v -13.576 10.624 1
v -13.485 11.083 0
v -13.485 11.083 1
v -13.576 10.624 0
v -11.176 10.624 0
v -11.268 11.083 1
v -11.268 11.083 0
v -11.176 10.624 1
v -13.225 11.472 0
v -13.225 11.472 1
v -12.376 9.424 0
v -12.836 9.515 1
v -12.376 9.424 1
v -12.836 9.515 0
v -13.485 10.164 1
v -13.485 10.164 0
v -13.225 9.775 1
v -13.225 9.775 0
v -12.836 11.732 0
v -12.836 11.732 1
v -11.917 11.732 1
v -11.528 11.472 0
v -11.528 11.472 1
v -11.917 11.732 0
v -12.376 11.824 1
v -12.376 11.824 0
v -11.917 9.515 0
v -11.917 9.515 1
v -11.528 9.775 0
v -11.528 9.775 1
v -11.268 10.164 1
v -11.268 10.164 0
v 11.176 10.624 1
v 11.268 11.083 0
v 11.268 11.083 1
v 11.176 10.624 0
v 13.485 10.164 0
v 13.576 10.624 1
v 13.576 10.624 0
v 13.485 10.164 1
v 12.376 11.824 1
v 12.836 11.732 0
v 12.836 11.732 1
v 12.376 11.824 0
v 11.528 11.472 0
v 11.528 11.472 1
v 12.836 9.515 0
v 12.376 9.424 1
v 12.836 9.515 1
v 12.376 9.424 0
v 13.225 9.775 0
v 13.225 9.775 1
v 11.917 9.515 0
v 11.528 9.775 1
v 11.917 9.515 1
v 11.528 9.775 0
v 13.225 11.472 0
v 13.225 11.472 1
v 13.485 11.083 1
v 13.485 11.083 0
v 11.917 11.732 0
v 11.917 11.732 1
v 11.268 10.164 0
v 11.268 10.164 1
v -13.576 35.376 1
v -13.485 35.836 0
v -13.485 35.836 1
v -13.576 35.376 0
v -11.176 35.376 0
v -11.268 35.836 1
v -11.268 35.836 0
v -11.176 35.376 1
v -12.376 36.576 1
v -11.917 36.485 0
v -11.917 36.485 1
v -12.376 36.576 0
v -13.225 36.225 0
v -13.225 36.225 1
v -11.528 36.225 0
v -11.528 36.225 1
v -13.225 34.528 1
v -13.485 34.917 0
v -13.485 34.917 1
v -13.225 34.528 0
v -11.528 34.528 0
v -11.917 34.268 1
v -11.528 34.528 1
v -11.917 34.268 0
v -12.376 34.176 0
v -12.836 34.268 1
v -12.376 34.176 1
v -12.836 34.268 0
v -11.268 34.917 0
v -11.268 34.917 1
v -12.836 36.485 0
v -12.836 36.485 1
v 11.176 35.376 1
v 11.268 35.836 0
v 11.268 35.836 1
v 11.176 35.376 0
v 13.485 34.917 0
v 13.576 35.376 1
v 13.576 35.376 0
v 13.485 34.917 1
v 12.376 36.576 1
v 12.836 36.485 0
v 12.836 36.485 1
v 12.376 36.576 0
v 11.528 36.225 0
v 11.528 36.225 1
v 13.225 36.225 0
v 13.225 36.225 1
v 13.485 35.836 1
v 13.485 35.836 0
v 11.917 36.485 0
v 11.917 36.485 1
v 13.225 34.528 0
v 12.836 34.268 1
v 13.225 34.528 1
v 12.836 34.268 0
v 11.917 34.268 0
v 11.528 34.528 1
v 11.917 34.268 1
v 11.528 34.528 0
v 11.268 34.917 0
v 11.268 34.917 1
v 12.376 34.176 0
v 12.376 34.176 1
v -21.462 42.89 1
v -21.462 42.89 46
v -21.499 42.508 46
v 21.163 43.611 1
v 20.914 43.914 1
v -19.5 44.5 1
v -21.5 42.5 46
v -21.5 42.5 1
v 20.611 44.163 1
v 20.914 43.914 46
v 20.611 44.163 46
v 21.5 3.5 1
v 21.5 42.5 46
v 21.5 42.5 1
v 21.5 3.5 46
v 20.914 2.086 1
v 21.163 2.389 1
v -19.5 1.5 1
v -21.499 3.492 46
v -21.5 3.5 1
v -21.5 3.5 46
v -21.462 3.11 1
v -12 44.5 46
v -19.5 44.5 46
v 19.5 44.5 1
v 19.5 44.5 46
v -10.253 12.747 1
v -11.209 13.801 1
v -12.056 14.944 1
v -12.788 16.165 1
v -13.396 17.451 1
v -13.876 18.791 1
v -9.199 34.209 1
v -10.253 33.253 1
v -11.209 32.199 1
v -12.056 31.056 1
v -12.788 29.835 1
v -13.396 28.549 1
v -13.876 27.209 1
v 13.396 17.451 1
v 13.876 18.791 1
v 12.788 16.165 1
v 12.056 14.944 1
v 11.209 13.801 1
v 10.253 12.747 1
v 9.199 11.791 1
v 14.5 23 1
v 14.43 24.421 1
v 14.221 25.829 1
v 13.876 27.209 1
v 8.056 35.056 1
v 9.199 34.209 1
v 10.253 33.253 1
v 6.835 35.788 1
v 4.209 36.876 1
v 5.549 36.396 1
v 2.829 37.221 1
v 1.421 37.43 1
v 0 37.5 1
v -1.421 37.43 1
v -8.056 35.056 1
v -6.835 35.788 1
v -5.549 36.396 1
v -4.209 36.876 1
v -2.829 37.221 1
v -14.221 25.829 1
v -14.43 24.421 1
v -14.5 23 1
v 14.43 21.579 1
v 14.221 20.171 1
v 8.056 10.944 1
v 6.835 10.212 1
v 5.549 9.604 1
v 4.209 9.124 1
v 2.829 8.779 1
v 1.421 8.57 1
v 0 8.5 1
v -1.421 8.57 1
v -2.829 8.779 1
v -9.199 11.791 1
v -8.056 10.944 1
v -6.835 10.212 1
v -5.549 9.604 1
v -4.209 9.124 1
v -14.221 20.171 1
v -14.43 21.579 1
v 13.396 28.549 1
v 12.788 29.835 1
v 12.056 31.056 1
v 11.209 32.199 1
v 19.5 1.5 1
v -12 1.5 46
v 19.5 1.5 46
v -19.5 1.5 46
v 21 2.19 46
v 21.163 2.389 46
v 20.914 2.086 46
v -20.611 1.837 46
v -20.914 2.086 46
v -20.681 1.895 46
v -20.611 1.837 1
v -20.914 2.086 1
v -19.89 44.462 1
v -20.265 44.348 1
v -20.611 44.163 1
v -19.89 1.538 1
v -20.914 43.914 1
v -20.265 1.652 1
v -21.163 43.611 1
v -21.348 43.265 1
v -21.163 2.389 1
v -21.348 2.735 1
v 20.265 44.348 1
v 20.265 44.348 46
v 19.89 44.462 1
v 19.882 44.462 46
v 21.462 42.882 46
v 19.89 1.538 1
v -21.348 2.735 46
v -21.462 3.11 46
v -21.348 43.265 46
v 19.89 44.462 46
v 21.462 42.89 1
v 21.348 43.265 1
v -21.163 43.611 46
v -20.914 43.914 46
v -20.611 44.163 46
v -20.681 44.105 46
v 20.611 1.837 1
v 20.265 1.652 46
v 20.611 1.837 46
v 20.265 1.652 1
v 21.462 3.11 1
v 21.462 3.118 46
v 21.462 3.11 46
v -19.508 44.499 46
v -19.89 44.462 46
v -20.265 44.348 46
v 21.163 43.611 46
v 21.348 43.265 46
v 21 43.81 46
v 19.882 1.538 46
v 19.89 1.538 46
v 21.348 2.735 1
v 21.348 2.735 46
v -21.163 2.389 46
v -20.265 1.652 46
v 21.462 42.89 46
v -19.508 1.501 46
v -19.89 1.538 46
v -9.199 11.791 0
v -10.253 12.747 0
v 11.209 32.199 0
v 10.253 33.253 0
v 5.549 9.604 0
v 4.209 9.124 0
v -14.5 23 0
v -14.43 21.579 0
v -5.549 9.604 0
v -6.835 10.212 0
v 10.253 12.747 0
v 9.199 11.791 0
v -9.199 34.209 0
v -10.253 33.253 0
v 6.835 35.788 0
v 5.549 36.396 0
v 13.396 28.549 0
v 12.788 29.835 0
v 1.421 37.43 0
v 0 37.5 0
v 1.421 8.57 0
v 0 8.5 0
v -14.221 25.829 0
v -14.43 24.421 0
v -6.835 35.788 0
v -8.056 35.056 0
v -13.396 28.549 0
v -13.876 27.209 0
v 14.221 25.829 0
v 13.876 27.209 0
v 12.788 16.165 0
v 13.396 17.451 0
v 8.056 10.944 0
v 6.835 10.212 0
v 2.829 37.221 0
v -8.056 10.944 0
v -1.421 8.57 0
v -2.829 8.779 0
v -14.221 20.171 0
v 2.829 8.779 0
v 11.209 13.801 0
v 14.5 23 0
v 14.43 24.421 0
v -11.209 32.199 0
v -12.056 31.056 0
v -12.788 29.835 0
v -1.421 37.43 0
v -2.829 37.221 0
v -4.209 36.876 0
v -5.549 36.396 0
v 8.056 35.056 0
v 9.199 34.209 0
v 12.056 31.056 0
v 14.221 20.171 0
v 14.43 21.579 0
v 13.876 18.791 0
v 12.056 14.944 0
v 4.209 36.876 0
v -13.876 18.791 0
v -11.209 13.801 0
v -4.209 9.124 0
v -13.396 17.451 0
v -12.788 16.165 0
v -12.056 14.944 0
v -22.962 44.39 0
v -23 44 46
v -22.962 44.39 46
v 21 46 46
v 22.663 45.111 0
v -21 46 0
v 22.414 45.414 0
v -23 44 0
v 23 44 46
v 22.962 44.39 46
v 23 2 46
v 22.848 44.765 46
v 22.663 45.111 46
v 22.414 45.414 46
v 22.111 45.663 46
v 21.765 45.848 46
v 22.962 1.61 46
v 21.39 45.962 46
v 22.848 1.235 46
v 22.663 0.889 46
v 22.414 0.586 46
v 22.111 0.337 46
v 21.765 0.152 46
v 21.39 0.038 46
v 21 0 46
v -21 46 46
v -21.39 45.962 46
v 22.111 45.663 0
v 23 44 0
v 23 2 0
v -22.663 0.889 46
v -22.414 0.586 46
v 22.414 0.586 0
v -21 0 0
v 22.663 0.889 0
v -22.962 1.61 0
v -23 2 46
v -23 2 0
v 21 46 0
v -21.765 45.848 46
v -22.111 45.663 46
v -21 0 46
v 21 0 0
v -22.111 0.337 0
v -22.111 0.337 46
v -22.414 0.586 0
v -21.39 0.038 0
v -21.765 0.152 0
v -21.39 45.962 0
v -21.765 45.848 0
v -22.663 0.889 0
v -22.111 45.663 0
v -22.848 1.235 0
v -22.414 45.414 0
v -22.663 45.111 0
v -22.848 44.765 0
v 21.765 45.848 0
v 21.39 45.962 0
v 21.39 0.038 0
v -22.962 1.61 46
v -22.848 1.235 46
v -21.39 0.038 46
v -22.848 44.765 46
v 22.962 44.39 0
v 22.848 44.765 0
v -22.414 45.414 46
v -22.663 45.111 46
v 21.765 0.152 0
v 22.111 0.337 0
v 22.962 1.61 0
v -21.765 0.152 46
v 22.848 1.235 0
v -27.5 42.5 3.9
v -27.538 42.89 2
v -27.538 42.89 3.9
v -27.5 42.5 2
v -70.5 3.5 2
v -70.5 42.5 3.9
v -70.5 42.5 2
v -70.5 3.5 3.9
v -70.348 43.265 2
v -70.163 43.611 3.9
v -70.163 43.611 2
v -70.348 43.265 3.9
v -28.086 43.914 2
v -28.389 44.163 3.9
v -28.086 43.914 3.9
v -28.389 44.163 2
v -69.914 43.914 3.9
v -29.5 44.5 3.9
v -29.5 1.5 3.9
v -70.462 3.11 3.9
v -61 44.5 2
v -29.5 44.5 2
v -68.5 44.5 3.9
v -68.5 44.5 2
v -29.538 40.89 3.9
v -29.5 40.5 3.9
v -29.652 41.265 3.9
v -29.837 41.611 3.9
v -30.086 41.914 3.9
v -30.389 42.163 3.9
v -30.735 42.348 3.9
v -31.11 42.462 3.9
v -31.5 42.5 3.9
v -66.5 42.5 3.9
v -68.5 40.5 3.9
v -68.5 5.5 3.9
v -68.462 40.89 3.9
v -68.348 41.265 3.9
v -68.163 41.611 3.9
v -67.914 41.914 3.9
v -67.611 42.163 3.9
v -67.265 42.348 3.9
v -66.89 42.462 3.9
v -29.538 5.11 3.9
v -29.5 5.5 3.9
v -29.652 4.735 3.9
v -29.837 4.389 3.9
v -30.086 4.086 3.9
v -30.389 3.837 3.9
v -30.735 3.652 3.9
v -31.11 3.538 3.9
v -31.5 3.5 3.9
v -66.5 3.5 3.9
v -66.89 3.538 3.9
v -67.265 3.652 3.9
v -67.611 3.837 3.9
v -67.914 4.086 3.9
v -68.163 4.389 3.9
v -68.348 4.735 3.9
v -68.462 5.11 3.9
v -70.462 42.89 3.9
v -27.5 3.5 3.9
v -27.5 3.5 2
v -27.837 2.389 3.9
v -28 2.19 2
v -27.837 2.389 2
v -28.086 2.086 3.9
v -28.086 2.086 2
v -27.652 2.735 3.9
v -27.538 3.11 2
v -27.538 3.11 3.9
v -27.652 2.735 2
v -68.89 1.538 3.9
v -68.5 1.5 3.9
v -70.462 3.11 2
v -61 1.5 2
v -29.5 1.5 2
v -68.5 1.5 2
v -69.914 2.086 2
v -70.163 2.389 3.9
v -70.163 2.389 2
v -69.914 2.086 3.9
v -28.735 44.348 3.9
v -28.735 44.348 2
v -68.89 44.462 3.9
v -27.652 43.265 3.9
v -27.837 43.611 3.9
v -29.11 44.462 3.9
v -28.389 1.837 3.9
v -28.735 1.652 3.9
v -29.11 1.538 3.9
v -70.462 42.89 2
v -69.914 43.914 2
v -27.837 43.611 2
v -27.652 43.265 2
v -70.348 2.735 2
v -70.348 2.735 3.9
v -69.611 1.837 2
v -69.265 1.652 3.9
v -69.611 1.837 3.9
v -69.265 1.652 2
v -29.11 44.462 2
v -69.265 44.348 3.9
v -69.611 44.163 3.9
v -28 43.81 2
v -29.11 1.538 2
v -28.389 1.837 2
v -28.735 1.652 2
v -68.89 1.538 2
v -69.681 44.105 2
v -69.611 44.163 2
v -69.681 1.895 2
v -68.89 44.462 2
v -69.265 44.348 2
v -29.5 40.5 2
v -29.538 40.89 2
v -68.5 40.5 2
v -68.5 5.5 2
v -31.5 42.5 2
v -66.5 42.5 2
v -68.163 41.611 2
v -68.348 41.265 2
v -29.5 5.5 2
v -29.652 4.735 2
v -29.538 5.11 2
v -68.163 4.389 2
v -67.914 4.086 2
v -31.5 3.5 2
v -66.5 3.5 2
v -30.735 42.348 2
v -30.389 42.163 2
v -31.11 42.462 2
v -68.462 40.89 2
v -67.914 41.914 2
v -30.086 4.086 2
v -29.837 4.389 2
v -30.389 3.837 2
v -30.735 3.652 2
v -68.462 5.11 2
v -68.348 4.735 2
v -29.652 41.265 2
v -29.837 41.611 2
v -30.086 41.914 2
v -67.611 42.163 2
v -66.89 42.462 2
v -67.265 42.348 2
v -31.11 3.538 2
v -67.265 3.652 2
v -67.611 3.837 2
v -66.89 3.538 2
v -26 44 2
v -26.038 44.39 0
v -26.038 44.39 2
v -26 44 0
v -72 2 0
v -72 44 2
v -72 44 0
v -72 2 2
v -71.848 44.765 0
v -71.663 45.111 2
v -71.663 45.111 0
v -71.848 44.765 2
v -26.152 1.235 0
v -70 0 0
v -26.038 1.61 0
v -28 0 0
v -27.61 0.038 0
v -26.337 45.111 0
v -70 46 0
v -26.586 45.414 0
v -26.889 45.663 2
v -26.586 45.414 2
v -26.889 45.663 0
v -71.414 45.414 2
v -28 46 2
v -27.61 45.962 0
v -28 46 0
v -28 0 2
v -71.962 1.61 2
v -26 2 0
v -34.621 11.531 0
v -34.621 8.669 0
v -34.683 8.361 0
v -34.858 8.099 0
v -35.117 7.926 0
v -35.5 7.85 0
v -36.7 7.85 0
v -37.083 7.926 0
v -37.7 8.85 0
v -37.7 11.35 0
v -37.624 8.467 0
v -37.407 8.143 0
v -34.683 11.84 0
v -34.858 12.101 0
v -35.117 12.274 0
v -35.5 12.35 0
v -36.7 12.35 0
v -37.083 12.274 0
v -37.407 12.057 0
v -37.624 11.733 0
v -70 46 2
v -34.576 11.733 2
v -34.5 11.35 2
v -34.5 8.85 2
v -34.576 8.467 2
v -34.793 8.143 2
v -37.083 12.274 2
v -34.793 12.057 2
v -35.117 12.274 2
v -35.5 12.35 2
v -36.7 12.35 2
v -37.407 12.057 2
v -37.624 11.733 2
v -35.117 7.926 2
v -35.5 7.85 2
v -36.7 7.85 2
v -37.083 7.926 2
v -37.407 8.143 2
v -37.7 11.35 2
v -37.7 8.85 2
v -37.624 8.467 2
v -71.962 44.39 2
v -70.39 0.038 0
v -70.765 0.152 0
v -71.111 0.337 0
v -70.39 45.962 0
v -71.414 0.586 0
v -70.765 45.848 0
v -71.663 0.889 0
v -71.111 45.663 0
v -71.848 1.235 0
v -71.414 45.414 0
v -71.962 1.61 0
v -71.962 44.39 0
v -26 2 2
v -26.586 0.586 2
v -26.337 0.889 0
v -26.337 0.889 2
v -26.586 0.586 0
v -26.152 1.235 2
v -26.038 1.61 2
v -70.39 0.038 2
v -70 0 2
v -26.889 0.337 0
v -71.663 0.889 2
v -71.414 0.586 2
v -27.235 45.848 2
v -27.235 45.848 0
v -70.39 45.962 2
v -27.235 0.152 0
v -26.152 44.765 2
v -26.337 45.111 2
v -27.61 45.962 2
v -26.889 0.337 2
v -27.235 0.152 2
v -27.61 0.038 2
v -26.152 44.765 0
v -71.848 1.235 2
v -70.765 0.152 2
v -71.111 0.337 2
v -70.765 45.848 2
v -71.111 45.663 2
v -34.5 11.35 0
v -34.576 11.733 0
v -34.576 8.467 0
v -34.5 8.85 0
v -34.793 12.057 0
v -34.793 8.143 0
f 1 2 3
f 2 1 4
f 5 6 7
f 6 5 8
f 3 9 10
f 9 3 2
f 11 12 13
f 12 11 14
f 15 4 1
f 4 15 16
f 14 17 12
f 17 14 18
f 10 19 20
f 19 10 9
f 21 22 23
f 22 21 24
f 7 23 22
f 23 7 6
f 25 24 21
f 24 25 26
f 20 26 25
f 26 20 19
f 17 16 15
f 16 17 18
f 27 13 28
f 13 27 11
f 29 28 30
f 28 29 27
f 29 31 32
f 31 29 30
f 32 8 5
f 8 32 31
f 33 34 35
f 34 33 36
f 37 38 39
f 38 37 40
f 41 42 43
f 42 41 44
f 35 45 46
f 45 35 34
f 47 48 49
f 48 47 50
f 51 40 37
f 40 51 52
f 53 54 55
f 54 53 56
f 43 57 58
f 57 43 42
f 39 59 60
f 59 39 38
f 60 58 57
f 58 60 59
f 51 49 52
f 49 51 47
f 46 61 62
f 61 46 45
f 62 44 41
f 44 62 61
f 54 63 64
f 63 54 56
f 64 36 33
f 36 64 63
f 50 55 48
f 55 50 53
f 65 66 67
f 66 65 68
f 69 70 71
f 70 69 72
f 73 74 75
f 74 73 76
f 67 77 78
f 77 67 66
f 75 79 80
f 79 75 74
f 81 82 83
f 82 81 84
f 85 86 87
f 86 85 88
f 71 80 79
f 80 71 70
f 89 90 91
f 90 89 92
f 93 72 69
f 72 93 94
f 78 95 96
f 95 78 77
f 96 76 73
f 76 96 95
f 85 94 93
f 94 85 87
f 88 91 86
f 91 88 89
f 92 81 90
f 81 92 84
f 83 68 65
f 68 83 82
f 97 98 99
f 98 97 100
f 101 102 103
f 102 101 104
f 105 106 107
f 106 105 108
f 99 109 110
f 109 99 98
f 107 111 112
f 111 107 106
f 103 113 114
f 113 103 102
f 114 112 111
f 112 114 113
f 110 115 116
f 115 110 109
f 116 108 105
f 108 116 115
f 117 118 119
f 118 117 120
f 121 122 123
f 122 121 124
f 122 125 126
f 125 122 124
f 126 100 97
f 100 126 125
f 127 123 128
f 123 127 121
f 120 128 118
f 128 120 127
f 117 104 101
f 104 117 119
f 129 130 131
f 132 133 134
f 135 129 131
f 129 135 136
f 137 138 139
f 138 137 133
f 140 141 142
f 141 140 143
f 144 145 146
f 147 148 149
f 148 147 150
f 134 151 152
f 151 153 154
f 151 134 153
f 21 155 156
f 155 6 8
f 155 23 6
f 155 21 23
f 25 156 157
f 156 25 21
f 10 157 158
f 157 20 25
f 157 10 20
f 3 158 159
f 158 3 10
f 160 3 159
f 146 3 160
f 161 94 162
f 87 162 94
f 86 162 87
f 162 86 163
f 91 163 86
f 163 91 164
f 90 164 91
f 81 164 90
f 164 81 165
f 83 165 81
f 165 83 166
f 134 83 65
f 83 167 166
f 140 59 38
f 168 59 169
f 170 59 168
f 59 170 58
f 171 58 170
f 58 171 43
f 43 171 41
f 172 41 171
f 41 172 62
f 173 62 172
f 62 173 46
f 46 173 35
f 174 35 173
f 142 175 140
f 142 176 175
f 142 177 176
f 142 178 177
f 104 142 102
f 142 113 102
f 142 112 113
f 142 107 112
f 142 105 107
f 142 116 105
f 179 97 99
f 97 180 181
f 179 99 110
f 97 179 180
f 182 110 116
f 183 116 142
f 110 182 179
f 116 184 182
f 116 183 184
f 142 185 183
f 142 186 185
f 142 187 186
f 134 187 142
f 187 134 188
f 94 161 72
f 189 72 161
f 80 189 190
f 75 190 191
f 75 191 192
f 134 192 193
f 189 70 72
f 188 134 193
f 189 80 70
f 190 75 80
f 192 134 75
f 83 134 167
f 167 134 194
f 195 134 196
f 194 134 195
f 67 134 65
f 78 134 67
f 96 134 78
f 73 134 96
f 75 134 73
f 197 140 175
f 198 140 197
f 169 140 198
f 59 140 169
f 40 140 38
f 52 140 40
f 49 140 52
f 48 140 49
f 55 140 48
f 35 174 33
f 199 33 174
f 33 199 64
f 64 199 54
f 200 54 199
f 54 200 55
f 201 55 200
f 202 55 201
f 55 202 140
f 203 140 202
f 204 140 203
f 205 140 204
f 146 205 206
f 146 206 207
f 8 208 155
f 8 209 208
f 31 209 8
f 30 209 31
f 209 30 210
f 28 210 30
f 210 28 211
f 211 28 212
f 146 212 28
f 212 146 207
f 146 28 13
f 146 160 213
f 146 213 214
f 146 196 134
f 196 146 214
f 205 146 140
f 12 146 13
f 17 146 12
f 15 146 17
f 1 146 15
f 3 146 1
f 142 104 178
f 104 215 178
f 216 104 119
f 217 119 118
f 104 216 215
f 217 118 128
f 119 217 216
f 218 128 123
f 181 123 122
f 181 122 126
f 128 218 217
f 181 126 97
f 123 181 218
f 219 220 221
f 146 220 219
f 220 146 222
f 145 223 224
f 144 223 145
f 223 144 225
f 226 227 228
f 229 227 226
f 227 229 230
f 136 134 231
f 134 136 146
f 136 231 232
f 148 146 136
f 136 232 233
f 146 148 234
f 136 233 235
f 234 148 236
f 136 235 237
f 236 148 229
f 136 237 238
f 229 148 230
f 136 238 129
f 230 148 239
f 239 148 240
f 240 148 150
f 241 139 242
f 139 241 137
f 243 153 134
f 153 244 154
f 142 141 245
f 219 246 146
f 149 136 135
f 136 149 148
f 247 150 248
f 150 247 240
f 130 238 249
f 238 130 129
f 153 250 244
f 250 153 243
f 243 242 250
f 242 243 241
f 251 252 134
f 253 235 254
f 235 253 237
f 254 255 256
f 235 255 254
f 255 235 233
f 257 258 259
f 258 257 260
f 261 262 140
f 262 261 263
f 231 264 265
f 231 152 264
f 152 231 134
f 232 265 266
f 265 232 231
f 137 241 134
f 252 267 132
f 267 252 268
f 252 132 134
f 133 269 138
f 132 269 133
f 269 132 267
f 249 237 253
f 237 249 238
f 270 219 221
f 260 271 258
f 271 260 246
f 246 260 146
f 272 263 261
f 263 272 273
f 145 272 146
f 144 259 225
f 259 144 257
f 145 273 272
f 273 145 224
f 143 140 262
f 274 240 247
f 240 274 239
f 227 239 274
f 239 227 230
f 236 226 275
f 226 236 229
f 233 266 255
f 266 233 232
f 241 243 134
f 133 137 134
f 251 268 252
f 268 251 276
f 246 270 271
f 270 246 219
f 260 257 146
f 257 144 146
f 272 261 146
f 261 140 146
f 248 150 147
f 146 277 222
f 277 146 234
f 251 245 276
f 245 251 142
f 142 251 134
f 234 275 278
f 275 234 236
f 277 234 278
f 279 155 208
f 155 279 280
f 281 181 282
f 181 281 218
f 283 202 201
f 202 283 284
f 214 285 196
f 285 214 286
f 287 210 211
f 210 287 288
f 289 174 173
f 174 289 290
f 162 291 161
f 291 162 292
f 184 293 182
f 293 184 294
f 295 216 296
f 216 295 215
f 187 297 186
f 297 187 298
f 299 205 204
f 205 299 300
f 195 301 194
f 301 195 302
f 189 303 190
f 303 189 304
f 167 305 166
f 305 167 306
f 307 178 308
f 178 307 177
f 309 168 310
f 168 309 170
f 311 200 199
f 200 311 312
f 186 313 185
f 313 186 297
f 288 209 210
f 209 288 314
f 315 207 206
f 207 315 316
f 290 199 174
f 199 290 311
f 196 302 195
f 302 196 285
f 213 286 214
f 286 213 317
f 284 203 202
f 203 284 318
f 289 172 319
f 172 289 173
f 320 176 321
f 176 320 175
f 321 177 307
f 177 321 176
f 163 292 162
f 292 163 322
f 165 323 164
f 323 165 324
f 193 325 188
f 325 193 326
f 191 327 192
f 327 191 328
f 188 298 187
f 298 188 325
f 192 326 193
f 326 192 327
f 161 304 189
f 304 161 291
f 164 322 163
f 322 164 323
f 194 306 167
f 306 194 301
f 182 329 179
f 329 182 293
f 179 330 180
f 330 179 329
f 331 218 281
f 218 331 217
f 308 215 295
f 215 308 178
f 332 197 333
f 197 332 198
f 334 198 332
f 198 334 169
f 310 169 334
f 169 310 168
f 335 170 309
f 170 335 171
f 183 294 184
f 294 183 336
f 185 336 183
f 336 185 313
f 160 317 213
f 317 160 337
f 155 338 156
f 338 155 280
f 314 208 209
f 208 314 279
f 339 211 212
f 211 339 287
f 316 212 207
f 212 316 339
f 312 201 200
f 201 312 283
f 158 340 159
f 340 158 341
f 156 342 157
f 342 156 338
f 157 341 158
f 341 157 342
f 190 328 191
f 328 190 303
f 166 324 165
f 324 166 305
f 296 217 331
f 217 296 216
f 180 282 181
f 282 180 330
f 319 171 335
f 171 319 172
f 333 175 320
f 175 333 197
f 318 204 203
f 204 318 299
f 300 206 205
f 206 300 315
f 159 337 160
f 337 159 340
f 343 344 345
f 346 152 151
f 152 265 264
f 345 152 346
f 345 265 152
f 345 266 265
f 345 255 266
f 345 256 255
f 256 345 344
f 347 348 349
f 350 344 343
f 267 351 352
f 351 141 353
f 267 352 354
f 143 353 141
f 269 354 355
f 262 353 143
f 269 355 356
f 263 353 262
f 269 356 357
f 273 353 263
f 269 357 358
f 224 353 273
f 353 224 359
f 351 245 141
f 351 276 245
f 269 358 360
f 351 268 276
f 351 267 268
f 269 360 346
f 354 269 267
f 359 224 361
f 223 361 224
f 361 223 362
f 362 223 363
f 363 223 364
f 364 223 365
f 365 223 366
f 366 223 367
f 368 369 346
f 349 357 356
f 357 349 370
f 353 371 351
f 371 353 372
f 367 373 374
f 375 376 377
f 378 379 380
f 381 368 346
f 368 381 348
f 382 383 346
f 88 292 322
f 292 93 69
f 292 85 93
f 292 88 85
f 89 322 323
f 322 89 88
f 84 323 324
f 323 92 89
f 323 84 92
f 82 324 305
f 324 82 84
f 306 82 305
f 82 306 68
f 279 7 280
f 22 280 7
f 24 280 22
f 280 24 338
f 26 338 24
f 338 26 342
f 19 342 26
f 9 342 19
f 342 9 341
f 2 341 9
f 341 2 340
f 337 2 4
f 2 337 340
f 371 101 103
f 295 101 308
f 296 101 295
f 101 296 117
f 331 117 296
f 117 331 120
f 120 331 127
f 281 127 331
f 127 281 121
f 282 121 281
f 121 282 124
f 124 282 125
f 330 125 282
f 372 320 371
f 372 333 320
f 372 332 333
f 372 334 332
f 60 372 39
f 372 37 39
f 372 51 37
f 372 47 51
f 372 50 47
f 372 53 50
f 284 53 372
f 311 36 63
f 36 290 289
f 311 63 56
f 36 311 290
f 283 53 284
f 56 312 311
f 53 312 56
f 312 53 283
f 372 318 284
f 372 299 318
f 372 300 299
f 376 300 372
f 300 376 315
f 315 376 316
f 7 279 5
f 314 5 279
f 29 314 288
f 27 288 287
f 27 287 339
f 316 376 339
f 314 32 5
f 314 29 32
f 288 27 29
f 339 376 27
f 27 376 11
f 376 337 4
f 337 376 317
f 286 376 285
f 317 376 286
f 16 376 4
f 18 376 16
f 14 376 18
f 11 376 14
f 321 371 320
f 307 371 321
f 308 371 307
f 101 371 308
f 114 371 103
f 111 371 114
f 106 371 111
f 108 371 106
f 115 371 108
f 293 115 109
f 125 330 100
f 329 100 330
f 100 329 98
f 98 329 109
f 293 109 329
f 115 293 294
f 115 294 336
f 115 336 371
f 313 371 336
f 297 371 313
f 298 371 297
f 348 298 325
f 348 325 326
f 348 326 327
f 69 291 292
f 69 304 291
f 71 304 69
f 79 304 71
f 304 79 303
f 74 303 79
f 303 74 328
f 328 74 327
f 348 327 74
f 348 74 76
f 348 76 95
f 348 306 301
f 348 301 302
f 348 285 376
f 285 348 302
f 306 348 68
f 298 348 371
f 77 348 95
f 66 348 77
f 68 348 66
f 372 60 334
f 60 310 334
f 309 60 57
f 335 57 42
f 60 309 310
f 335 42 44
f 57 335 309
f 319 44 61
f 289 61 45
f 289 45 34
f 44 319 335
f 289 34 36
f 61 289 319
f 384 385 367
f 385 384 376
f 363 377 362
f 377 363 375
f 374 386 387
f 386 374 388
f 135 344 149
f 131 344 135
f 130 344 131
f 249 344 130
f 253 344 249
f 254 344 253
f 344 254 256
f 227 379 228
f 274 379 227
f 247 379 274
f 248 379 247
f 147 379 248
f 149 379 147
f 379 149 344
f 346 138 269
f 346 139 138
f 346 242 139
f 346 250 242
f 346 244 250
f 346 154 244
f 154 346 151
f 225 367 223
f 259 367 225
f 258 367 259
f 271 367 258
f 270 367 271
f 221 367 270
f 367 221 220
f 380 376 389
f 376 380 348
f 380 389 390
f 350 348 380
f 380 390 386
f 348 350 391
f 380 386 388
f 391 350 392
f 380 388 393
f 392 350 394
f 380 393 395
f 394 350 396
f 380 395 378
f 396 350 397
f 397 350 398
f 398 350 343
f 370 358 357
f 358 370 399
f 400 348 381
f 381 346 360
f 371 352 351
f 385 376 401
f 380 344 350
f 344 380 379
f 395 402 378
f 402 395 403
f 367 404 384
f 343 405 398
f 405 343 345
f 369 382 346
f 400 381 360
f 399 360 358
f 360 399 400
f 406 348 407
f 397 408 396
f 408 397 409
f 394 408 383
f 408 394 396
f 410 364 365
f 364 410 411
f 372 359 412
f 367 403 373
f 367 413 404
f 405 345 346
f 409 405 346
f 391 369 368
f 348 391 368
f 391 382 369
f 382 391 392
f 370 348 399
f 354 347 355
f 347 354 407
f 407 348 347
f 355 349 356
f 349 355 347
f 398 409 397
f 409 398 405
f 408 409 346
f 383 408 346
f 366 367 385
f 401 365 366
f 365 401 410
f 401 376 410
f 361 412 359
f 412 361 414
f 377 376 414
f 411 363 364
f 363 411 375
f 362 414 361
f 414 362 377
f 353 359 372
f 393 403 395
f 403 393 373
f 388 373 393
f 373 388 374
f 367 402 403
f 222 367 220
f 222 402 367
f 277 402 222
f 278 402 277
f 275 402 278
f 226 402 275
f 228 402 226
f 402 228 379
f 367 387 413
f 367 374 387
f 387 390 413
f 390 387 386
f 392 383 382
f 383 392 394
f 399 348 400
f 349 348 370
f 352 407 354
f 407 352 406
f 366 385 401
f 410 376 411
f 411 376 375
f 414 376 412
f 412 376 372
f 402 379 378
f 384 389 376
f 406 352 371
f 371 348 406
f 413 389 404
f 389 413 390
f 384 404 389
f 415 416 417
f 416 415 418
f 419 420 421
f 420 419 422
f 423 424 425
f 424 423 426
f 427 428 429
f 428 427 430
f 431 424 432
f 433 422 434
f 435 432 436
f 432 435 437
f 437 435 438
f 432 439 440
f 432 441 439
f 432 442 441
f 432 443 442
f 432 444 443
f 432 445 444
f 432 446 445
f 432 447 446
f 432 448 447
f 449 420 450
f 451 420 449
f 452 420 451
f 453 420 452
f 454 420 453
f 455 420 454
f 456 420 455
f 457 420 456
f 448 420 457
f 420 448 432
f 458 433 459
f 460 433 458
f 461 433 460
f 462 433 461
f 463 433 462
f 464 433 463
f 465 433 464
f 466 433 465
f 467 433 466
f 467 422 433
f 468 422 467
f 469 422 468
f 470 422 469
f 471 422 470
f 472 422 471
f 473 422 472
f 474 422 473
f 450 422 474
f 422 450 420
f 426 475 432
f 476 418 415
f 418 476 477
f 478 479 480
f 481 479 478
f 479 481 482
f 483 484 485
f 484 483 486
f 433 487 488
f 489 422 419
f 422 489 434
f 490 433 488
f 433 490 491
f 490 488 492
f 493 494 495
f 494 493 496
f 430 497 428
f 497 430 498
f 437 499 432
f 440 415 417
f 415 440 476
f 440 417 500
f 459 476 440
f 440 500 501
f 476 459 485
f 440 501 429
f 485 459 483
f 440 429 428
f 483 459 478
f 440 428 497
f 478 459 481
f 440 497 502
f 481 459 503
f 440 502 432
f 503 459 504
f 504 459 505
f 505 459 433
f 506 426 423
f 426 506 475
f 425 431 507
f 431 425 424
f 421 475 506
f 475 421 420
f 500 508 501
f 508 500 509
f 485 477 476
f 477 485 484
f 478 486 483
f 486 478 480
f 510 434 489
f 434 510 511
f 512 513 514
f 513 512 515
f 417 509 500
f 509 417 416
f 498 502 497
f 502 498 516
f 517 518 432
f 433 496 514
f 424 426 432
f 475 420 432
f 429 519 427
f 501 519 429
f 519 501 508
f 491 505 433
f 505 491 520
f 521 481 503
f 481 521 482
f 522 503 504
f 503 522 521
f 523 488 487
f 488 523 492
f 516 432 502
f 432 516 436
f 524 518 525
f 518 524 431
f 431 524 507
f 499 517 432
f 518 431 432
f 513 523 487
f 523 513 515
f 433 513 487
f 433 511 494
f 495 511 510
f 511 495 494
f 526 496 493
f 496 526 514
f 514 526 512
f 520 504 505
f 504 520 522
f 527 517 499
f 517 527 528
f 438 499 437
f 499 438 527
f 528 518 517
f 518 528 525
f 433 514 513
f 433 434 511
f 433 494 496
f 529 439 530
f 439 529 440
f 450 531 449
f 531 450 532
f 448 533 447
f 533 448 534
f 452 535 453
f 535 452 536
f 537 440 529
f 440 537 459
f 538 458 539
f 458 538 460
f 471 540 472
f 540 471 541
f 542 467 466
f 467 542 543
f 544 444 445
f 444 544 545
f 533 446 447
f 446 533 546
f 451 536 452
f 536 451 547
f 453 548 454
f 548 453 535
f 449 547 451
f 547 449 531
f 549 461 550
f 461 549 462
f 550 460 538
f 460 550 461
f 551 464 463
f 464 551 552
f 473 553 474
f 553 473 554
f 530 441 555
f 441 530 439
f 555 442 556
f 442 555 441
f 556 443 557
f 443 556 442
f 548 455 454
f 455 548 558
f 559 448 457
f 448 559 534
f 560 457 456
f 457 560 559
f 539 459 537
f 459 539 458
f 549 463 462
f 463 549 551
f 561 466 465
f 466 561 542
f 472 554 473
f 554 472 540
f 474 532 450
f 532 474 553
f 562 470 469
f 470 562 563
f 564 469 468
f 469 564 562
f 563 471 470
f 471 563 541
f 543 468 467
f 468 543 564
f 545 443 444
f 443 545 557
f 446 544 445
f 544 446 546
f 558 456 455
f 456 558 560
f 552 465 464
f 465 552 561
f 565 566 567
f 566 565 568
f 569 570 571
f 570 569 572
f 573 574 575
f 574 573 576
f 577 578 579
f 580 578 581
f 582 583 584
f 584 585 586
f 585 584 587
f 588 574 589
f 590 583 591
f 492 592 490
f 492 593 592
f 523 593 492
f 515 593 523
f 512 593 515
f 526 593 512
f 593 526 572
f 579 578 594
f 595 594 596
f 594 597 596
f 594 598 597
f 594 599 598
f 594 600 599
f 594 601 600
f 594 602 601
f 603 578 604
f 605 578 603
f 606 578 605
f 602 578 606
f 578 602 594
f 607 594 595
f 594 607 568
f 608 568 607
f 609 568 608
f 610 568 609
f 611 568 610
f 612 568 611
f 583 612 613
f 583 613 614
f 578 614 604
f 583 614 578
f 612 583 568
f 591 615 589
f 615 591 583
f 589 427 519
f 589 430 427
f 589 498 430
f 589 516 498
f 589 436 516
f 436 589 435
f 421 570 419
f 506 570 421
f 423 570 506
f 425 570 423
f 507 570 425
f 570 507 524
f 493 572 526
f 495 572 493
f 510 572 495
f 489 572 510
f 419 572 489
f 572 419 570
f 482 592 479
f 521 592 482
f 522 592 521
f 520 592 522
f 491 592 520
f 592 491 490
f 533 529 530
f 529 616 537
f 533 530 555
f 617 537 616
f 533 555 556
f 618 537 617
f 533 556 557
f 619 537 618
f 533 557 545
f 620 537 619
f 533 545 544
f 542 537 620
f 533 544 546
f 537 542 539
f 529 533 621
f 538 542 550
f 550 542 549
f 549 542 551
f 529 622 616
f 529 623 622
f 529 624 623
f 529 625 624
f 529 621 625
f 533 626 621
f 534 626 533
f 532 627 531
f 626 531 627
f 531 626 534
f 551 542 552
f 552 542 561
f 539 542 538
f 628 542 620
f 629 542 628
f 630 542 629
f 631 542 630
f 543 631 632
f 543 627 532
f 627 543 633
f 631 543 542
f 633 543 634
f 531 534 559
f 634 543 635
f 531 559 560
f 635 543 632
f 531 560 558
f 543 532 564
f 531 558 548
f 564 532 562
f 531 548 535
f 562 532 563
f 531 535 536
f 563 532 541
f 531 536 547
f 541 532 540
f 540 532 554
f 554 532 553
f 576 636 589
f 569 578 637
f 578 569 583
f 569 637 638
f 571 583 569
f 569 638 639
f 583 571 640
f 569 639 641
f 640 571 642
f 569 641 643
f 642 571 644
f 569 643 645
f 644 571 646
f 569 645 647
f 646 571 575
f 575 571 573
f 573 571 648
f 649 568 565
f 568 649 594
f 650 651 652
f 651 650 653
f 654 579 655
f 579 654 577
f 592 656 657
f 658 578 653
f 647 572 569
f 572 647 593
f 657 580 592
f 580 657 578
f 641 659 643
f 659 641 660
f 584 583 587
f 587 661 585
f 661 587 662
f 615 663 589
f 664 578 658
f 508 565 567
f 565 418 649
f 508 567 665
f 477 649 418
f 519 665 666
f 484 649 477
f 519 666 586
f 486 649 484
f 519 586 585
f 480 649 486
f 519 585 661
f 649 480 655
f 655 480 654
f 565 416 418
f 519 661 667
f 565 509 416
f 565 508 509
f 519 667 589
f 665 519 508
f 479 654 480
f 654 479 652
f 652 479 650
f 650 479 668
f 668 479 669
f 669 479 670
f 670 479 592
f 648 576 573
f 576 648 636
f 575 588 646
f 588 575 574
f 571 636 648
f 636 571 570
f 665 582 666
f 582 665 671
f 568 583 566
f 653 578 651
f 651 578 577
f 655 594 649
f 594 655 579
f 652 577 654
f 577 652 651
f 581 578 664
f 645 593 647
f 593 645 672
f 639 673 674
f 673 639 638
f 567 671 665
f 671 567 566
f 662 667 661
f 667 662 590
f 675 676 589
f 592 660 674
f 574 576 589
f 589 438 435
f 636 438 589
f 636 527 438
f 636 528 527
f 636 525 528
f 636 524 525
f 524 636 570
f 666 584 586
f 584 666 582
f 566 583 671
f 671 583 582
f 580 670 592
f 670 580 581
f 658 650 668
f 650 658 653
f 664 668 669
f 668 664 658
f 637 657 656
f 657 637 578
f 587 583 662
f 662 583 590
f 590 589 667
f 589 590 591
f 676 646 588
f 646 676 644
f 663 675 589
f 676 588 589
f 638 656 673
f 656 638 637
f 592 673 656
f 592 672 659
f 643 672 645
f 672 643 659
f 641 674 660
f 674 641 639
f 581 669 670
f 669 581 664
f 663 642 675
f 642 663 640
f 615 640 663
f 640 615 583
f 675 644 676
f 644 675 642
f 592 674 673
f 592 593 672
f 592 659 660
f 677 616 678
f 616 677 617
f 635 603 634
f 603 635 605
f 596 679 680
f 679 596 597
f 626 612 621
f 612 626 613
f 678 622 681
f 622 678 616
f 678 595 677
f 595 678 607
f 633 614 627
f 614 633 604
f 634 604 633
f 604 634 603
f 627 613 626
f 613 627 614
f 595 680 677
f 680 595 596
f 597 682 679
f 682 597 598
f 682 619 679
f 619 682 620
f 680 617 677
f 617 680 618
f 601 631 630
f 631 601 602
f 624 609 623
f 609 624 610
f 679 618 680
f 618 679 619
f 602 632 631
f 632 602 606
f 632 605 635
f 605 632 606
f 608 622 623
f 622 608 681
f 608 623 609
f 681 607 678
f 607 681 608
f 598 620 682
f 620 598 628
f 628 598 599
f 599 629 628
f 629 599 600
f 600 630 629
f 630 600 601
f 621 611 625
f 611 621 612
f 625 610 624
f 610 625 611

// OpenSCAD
// file: speaker_stand.scad
//
// Speaker Stand
//
// by Yasuhiro Wabiko
//
// This work is licensed under a Creative Commons Attribution 4.0 International License.
// https://creativecommons.org/licenses/by/4.0/
//
use <prim.scad>

default_stand_z =40;
default_base_x = 36;
default_base_y = 36;
default_base_z = 4;
default_base_r = 2;
default_pole_r = 4; // pole body radius
default_pole_z = 36;
default_pole_rr = 1; // pole corner radius
default_joint_z = 2;
default_joint_extra_z = 0;
default_joint_r = 3;


WELDING = 0.1;

// render target; this is meant to be overriden by Makefile
TARGET="default";

//
// top level logic
//
speaker_stand_main();

module speaker_stand_main(target=TARGET){
    
    if (target == "default") {
        speaker_stand(stand_z=40, base_x=30, base_y=30, pole_r=8);
    }

    if (target == "ce32a") {
        speaker_stand(stand_z=40, base_x=(36-2)*0.8, base_y=(36-2)*0.8, pole_r=4);
    }

    if (target == "ce32a_type2") {
        speaker_stand(stand_z=40, base_x=(33.2-2)*0.8, base_y=(33.2-2)*0.8, pole_r=4);
    }

    if (target == "b1s") {
        speaker_stand(stand_z=40, base_x=(40-2)*0.8, base_y=(40-2)*0.8, pole_r=4);
    }

    if (target == "ce32a_tallboy") {
        speaker_stand(stand_z=40, base_z=0, pole_r=18, base_x=32*0.8, base_y=32*0.8);
    }

    if (target == "b1s_tallboy") {
        speaker_stand(stand_z=40, base_x=(40-2)*0.8, base_y=(40-2)*0.8, pole_r=4);
    }

}

// [Public]
// A speaker stand.
//
// stand_z = total height (= base height + pole height) i.e how high the speaker is put from the ground.
// (base_x, base_y, base_z, base_r) = stand base dimension
// (joint_z, joint_r) = joint configuration
// pole_r = pole radius
//
// NOTE: pole height is generated by total height - base_height.
module speaker_stand(stand_z = default_stand_z,
                     base_x = default_base_x,
                     base_y = default_base_y,
                     base_z = default_base_z,
                     base_r = default_base_r,
                     joint_r = default_joint_r,
                     joint_z = default_joint_z,
                     pole_r = default_pole_r,
                     pole_rr = default_pole_rr) {

    pole_z = stand_z-base_z;

    speaker_stand_unit(stand_z = stand_z,
                       base_x = base_x,
                       base_y = base_y,
                       base_z = base_z,
                       base_r = base_r,
                       joint_r = joint_r,
                       joint_z = joint_z,
                       pole_r = pole_r,
                       pole_z = pole_z,
                       pole_rr = default_pole_rr );
}

// (for testing) when you want to override design parameters in detail
module speaker_stand_unit(stand_z = default_stand_z,
                          base_x = default_base_x,
                          base_y = default_base_y,
                          base_z = default_base_z,
                          base_r = default_base_r,
                          joint_r = default_joint_r,
                          joint_z = default_joint_z,
                          joint_extra_z  = default_joint_extra_z,
                          pole_r = default_pole_r,
                          pole_z = default_pole_z,
                          pole_rr = default_pole_rr,
                          joint_fn = 32,
                          pole_fn = 64,
                          base_fn = 64,
                          clip_z = 0.6) {
    clip_r = joint_r;
    
    translate([0, 0, 0]) {
        // base plate
        translate([0, 0, base_z/2]) {
            prim_round_zplate0(base_x, base_y, base_z, base_r, base_fn);
        }

        translate([0, 0, pole_z/2]) {
            difference() {
                union() {
                    // pole (inner joint)
                    translate([0, 0, pole_z/2+joint_z/2-WELDING+clip_z/2]) {
                        cylinder(r = joint_r, $fn = joint_fn, h = joint_z+WELDING+clip_z, center=true);
                    }

                    // clip
                    translate([0, 0, pole_z/2+joint_z+clip_z/2]) {
                        minkowski() {
                            cylinder(r = clip_r, $fn = joint_fn, h = 0.2, center=true);
                            sphere(r=0.2, $fn=32);
                        }
                    }
                }
                union() {
                    // slits for easier joint 
                    translate([0, 0, pole_z/2]) {
                        for (i=[0:1:7]) {
                            rotate([0,0,45*i]) {
                                cube([8, 0.4, joint_z*6], center=true);
                            }
                        }
                    }

                    // pole (empty inside)
                    translate([0, 0, pole_z/2+joint_z/2-WELDING+clip_z/2]) {
                        //    cylinder(r = joint_r-0.5, $fn = joint_fn, h = joint_z+WELDING*4+clip_z, center=true);
                    }
                }
            } // difference

            // pole (outer)
            translate([0, 0, base_z/2-WELDING]) {
                //cylinder(r = pole_r, $fn = pole_fn, h = pole_z-base_z+WELDING, center=true);
                prim_round_zplate0(pole_r*2, pole_r*2, pole_z-base_z+WELDING, pole_rr, 32);
            }

            // pole (joint's inner stuffing for more strength)
            translate([0, 0, pole_z/2+joint_z/2-WELDING+clip_z/2]) {
                cylinder(r = clip_r-1, $fn = joint_fn, h = joint_z+WELDING+clip_z, center=true);
            }
        }
    }
}
// main file
//
// TangBand W1-1070SH 1" Speaker Enclosure Rev.1
//
// by Yasuhiro Wabiko
//
// This work is licensed under a Creative Commons Attribution 4.0 International License.
// https://creativecommons.org/licenses/by/4.0/
//
use <speaker_stand.scad>
use <prim.scad>

// printer error related tweaks
LID_ERROR   = 0.0; // if the lid does not fit, make this larger.
                   // Wood PLA: 0.8 (0.1-0.4 too small). 0.8 a bit too loose.
                   // PLA: 0.0 (0.8 too large.)

SHELL_ERROR = 0.0; // if the speaker driver does not fit, make this larger.

// shape parameters
wall_t = 1.0;  // wall thickness
spfn =  8;   // minkowski resolution

// inner size of the box
size_x = 40;
size_dx = 0; // extra front wall thickness inside size_x
size_y = 43;
size_z = 43;
shell_r = 2;

// outer size of the box
shell_x = 46;
shell_y = 46;
shell_z = 46;
shell_r = 2;
    

lid_inner_x = 2.0; // thickness of lid inner part
lid_wall_t = 2.0;
lid_arm_r = 2.0;
lid_hole_y = 3.0;
lid_hole_z = 2.0;

// further customization example: make a hole on the front surface
// coordinates are from left-bottom edge of inner space

// speaker center hole
speaker_dia = 29; // speaker diameter
front_hole_r0 = speaker_dia/2;
front_spfn   = 64;  // minkowski resolution

// spaker mount holes at corners
MOUNT_DIA    = 35;  // mount holes layout diameter
front_hole_r = 1.2; // mount hole radius
mount_spfn   = 16;  // minkowski resolution

// a hole on the lid side
lid_hole_y = 3;
lid_hole_z = 3;
lid_hole_r = 2;

//
// internals
//
WELDING = 0.1;

// render target; this is meant to be overriden by Makefile
TARGET="default";

//
// top level logic
//
tb1070sh_main();

module tb1070sh_main(target=TARGET){
    
    if (target == "default") {
        tb1070sh(with_stand=0, with_print=1);
    }

    if (target == "with_stand") {
        tb1070sh(with_stand=1, with_print=1);
    }

    if (target == "stand_only") {
        oy=36;
        translate([-oy-3, -oy/2+3, 0]) {
            tb1070sh_unit_stand();
        }
    }

    if (target == "unit_test") {
        translate([40,0,0]) {
            tb1070sh_unit_body_only(shell_x, shell_y, shell_z);
        }
        tb1070sh_unit_lid_only(shell_x,  shell_y, shell_z, with_hole=0);
    }

    if (target == "unit_lid_test") {
        rotate([0,-90,0]) {
            tb1070sh_unit_lid_only(shell_x, shell_y, shell_z, lid_wall_t=2, with_hole=1);
        }
    }

    if (target == "stand_test") {
        translate([0, 3, 0]) {
            tb1070sh_unit_stand();
        }
    }

    if (target == "joint_test") {
        // render small joint only for joint testing
        translate([3,0,0]) {
            tb1070sh_unit_stand();
        }
    }
    
}


// -------------------------
// Public Modules
// -------------------------

// [Public]
// Minimum size enclosure.
//
// with_print = { 0: edit layout, 1: print layout}
module tb1070sh(with_print=1, with_stand=0){
    tb1070sh_unit(ox=shell_x, oy=shell_y, oz=shell_z, with_print=with_print, with_hole=1, with_stand=with_stand);
}

// [Public]
// Variable size enclosure. Typically to be embededd in another project.
// 
// ox, oy, oz = dimension (this has to be equals to or larger than (size_x, size_y, size_z).
// with_print = { 0: edit layout, 1: print layout}
module tb1070sh_unit(ox, oy, oz, lid_wall_t=lid_wall_t, with_print=1, shell_error=SHELL_ERROR, lid_error=LID_ERROR,
                  stand_height=40,
                  with_stand=0, with_hole=0, with_body=1, with_lid=1){
    if (with_print) {
        if (with_body) {
            translate([0, oy/2, ox/2]) {
                rotate([0, 90, 0]) {
                    tb1070sh_unit_body_only(ox=ox, oy=oy, oz=oz, shell_error=shell_error, with_stand=with_stand);
                }
            }
        }
        if (with_lid) {
            translate([-oy-3, oy/2, 0]) {
                rotate([0, -90, 0]) {
                    tb1070sh_unit_lid_only(ox, oy, oz, lid_wall_t=lid_wall_t, shell_error=shell_error, lid_error=lid_error, with_hole=with_hole);
                }
            }
        }
        if (with_stand) {
            translate([oy+3, oy/2, 0]) {
                rotate([0,0,0]) {
                    tb1070sh_unit_stand(stand_z=40, base_x=(ox-2)*0.8, base_y=(oy-2)*0.8, base_z=4);
                }
            }
        }
    } else {
        tb1070sh_unit_body_only(ox=ox, oy=oy, oz=oz, shell_error=shell_error, with_stand=with_stand);
        translate([-ox,0,0]) {
            tb1070sh_unit_lid_only(ox, oy, oz, lid_wall_t=lid_wall_t, shell_error=shell_error, lid_error=lid_error, with_hole=with_hole);
        }
        if (with_stand) {
            translate([40,0,0]) {
                rotate([0,90,0]) {
                    tb1070sh_unit_stand(stand_z=40, base_x=(ox-2)*0.8, base_y=(oy-2)*0.8, base_z=4);
                }
            }
        }
    }
}

module tb1070sh_unit_stand(stand_z=40, base_x=36, base_y=36, base_z=4){
    speaker_stand(stand_z=stand_z, base_x=base_x, base_y=base_y, base_z=base_z);
}

// [Public]
// Variable size enclosure (body only). Typically for testing purpose.
// 
// ox, oy, oz = dimension (this has to be equals to or larger than (size_x, size_y, size_z).
module tb1070sh_unit_body_only(ox, oy, oz, shell_error=SHELL_ERROR, with_stand=0){
    fn = 32;
    difference(){
        translate([0, 0, 0]) {
            prim_round_xplate0(ox, oy, oz, shell_r, fn);
        }
        translate([-size_dx, 0, 0])
            tb1070sh_shell_negative_volume(sx=ox, sy=size_y, sz=size_z, dx=size_dx, st=wall_t, sr0=front_hole_r0, sr=front_hole_r, shr=shell_r, sf=fn, se=shell_error, with_stand=with_stand);
    }
}

// [Public]
// Variable size enclosure (lid only). Typically for testing purpose.
// 
// ox, oy, oz = dimension (this has to be equals to or larger than (size_x, size_y, size_z).
// with_hole  = { 0: without hole, 1: with hole } // a hole for cables
// with_arm   = { 0: without arm, 1: with arm }   // arms to support the speaker driver (experimental)
module tb1070sh_unit_lid_only(ox, oy, oz, lid_wall_t=wall_t, with_hole=0, with_arm=0, shell_error=SHELL_ERROR, lid_error=LID_ERROR){
    // arm
    if (with_arm) {
        translate([0,0,0]) {
            tb1070sh_lid_arm(ox, oy-wall_t*2, oz-wall_t*2, wall_t, lid_arm_r, spfn);
        }
    }

    // lid
    translate([lid_wall_t/2,0,0]) {
        difference(){
            tb1070sh_lid_body(ox=ox, oy=oy, oz=oz, sx=size_x, sy=size_y, sz=size_z, st=wall_t, lix=lid_inner_x, lt=lid_wall_t, sr=shell_r, shr=shell_r, sf=spfn, se=shell_error, le=lid_error, with_hole=with_hole);
            tb1070sh_lid_negative_volume(ox=ox, oy=oy-wall_t*2.1, oz=oz-wall_t*2.1, sx=size_x, sy=size_y, sz=size_z, hy=lid_hole_y, hz=lid_hole_z, lix=lid_inner_x, lt=lid_wall_t, with_hole=with_hole);
        }
            
    }
}


// -------------------------
// Private Modules
// -------------------------

// cube inner volume (negative volume. this part will be subtracted to make room for stuffings.)
module tb1070sh_shell_negative_volume(sx, sy, sz, dx, st, sr0, sr, shr, sf, se=SHELL_ERROR, with_stand=1) {
    translate([-wall_t,0,0]) {
        #prim_round_xplate0(sx, sy+se, sz+se, shr, sf);
    }

    // center speaker hole
    translate([sx/2, 0, 0]) {
        rotate([0, 90, 0]) {
            #cylinder(r = sr0, $fn = 64, h=st*3+dx*2, center=true);
            }
    }

    dd = MOUNT_DIA/1.414/2; // 1.414 = sqrt(2); y- and z-axis distance from center to mount holes
    
    // corner mount holes
    translate([sx/2+st/2, 0, 0]) {
        for (ix=[-1,1]) {
            for (iy=[-1,1]) {
                translate([0, dd*ix, dd*iy]) {
                    rotate([0, 90, 0]) {
                        #cylinder(r = sr, $fn = 16, h = st*4+dx*2, center=true);
                    }
                }
            }
        }
    }

    if (with_stand) {
        translate([dx, 0, sz/2+st/2]) {
            #cylinder(r = 3, $fn = 32, h = st*4, center=true);
        }
    }

}

// experimental: arms to support speaker driver
module tb1070sh_lid_arm(sx, sy, sz, st, sr, sf) {
    dx = 4;
    dy = sy/2-st-sr*1.1;
    dz = sz/2-st-sr*1.1;
    translate([-dx/2, 0, 0]) {
        for (iy=[-1,1]) {
            for (iz=[-1,1]) {
                translate([0, dy*iy, dz*iz]) {
                    rotate([0, 90, 0]) {
                        cylinder(r = sr, $fn = 16, h = sx-dx, center=true);
                    }
                }
            }
        }
    }
}

module tb1070sh_lid_body(ox, oy, oz, sx, sy, sz, st, lix, lt, sr, shr, sf, se=SHELL_ERROR, le=LID_ERROR, with_hole=0) {
    fn = 32;
    // outer
    prim_round_xplate0(lt, oy, oz, shr, fn);

    // inner
    translate([lt/2+lix/2-WELDING,0,0]) {
        difference(){
            prim_round_xplate0(lix, sy+se-le, sz+se-le, shr, fn);
            translate([WELDING,0,0]) {
                prim_round_xplate0(lix+WELDING, sy+se-le-lt*2, sz+se-le-lt*2, shr, fn);
            }
        }
    }
}


module tb1070sh_lid_negative_volume(ox, oy, oz, sx, sy, sz, hy, hz, lt, with_hole=1) {
    y3 = 6; // 3-cable width (22 AWG)
    y2 = 4.5; // 2-cable width (22 AWG)
    z1 = 3.2; // 1-cable height (22 AWG)

    // cable hole
    if (with_hole) {
        translate([lt,-sy*0.3,-sz*0.3]) {
            #prim_round_xplate0(lt*3, y2, z1, 1, 16);
        }
    }
}
